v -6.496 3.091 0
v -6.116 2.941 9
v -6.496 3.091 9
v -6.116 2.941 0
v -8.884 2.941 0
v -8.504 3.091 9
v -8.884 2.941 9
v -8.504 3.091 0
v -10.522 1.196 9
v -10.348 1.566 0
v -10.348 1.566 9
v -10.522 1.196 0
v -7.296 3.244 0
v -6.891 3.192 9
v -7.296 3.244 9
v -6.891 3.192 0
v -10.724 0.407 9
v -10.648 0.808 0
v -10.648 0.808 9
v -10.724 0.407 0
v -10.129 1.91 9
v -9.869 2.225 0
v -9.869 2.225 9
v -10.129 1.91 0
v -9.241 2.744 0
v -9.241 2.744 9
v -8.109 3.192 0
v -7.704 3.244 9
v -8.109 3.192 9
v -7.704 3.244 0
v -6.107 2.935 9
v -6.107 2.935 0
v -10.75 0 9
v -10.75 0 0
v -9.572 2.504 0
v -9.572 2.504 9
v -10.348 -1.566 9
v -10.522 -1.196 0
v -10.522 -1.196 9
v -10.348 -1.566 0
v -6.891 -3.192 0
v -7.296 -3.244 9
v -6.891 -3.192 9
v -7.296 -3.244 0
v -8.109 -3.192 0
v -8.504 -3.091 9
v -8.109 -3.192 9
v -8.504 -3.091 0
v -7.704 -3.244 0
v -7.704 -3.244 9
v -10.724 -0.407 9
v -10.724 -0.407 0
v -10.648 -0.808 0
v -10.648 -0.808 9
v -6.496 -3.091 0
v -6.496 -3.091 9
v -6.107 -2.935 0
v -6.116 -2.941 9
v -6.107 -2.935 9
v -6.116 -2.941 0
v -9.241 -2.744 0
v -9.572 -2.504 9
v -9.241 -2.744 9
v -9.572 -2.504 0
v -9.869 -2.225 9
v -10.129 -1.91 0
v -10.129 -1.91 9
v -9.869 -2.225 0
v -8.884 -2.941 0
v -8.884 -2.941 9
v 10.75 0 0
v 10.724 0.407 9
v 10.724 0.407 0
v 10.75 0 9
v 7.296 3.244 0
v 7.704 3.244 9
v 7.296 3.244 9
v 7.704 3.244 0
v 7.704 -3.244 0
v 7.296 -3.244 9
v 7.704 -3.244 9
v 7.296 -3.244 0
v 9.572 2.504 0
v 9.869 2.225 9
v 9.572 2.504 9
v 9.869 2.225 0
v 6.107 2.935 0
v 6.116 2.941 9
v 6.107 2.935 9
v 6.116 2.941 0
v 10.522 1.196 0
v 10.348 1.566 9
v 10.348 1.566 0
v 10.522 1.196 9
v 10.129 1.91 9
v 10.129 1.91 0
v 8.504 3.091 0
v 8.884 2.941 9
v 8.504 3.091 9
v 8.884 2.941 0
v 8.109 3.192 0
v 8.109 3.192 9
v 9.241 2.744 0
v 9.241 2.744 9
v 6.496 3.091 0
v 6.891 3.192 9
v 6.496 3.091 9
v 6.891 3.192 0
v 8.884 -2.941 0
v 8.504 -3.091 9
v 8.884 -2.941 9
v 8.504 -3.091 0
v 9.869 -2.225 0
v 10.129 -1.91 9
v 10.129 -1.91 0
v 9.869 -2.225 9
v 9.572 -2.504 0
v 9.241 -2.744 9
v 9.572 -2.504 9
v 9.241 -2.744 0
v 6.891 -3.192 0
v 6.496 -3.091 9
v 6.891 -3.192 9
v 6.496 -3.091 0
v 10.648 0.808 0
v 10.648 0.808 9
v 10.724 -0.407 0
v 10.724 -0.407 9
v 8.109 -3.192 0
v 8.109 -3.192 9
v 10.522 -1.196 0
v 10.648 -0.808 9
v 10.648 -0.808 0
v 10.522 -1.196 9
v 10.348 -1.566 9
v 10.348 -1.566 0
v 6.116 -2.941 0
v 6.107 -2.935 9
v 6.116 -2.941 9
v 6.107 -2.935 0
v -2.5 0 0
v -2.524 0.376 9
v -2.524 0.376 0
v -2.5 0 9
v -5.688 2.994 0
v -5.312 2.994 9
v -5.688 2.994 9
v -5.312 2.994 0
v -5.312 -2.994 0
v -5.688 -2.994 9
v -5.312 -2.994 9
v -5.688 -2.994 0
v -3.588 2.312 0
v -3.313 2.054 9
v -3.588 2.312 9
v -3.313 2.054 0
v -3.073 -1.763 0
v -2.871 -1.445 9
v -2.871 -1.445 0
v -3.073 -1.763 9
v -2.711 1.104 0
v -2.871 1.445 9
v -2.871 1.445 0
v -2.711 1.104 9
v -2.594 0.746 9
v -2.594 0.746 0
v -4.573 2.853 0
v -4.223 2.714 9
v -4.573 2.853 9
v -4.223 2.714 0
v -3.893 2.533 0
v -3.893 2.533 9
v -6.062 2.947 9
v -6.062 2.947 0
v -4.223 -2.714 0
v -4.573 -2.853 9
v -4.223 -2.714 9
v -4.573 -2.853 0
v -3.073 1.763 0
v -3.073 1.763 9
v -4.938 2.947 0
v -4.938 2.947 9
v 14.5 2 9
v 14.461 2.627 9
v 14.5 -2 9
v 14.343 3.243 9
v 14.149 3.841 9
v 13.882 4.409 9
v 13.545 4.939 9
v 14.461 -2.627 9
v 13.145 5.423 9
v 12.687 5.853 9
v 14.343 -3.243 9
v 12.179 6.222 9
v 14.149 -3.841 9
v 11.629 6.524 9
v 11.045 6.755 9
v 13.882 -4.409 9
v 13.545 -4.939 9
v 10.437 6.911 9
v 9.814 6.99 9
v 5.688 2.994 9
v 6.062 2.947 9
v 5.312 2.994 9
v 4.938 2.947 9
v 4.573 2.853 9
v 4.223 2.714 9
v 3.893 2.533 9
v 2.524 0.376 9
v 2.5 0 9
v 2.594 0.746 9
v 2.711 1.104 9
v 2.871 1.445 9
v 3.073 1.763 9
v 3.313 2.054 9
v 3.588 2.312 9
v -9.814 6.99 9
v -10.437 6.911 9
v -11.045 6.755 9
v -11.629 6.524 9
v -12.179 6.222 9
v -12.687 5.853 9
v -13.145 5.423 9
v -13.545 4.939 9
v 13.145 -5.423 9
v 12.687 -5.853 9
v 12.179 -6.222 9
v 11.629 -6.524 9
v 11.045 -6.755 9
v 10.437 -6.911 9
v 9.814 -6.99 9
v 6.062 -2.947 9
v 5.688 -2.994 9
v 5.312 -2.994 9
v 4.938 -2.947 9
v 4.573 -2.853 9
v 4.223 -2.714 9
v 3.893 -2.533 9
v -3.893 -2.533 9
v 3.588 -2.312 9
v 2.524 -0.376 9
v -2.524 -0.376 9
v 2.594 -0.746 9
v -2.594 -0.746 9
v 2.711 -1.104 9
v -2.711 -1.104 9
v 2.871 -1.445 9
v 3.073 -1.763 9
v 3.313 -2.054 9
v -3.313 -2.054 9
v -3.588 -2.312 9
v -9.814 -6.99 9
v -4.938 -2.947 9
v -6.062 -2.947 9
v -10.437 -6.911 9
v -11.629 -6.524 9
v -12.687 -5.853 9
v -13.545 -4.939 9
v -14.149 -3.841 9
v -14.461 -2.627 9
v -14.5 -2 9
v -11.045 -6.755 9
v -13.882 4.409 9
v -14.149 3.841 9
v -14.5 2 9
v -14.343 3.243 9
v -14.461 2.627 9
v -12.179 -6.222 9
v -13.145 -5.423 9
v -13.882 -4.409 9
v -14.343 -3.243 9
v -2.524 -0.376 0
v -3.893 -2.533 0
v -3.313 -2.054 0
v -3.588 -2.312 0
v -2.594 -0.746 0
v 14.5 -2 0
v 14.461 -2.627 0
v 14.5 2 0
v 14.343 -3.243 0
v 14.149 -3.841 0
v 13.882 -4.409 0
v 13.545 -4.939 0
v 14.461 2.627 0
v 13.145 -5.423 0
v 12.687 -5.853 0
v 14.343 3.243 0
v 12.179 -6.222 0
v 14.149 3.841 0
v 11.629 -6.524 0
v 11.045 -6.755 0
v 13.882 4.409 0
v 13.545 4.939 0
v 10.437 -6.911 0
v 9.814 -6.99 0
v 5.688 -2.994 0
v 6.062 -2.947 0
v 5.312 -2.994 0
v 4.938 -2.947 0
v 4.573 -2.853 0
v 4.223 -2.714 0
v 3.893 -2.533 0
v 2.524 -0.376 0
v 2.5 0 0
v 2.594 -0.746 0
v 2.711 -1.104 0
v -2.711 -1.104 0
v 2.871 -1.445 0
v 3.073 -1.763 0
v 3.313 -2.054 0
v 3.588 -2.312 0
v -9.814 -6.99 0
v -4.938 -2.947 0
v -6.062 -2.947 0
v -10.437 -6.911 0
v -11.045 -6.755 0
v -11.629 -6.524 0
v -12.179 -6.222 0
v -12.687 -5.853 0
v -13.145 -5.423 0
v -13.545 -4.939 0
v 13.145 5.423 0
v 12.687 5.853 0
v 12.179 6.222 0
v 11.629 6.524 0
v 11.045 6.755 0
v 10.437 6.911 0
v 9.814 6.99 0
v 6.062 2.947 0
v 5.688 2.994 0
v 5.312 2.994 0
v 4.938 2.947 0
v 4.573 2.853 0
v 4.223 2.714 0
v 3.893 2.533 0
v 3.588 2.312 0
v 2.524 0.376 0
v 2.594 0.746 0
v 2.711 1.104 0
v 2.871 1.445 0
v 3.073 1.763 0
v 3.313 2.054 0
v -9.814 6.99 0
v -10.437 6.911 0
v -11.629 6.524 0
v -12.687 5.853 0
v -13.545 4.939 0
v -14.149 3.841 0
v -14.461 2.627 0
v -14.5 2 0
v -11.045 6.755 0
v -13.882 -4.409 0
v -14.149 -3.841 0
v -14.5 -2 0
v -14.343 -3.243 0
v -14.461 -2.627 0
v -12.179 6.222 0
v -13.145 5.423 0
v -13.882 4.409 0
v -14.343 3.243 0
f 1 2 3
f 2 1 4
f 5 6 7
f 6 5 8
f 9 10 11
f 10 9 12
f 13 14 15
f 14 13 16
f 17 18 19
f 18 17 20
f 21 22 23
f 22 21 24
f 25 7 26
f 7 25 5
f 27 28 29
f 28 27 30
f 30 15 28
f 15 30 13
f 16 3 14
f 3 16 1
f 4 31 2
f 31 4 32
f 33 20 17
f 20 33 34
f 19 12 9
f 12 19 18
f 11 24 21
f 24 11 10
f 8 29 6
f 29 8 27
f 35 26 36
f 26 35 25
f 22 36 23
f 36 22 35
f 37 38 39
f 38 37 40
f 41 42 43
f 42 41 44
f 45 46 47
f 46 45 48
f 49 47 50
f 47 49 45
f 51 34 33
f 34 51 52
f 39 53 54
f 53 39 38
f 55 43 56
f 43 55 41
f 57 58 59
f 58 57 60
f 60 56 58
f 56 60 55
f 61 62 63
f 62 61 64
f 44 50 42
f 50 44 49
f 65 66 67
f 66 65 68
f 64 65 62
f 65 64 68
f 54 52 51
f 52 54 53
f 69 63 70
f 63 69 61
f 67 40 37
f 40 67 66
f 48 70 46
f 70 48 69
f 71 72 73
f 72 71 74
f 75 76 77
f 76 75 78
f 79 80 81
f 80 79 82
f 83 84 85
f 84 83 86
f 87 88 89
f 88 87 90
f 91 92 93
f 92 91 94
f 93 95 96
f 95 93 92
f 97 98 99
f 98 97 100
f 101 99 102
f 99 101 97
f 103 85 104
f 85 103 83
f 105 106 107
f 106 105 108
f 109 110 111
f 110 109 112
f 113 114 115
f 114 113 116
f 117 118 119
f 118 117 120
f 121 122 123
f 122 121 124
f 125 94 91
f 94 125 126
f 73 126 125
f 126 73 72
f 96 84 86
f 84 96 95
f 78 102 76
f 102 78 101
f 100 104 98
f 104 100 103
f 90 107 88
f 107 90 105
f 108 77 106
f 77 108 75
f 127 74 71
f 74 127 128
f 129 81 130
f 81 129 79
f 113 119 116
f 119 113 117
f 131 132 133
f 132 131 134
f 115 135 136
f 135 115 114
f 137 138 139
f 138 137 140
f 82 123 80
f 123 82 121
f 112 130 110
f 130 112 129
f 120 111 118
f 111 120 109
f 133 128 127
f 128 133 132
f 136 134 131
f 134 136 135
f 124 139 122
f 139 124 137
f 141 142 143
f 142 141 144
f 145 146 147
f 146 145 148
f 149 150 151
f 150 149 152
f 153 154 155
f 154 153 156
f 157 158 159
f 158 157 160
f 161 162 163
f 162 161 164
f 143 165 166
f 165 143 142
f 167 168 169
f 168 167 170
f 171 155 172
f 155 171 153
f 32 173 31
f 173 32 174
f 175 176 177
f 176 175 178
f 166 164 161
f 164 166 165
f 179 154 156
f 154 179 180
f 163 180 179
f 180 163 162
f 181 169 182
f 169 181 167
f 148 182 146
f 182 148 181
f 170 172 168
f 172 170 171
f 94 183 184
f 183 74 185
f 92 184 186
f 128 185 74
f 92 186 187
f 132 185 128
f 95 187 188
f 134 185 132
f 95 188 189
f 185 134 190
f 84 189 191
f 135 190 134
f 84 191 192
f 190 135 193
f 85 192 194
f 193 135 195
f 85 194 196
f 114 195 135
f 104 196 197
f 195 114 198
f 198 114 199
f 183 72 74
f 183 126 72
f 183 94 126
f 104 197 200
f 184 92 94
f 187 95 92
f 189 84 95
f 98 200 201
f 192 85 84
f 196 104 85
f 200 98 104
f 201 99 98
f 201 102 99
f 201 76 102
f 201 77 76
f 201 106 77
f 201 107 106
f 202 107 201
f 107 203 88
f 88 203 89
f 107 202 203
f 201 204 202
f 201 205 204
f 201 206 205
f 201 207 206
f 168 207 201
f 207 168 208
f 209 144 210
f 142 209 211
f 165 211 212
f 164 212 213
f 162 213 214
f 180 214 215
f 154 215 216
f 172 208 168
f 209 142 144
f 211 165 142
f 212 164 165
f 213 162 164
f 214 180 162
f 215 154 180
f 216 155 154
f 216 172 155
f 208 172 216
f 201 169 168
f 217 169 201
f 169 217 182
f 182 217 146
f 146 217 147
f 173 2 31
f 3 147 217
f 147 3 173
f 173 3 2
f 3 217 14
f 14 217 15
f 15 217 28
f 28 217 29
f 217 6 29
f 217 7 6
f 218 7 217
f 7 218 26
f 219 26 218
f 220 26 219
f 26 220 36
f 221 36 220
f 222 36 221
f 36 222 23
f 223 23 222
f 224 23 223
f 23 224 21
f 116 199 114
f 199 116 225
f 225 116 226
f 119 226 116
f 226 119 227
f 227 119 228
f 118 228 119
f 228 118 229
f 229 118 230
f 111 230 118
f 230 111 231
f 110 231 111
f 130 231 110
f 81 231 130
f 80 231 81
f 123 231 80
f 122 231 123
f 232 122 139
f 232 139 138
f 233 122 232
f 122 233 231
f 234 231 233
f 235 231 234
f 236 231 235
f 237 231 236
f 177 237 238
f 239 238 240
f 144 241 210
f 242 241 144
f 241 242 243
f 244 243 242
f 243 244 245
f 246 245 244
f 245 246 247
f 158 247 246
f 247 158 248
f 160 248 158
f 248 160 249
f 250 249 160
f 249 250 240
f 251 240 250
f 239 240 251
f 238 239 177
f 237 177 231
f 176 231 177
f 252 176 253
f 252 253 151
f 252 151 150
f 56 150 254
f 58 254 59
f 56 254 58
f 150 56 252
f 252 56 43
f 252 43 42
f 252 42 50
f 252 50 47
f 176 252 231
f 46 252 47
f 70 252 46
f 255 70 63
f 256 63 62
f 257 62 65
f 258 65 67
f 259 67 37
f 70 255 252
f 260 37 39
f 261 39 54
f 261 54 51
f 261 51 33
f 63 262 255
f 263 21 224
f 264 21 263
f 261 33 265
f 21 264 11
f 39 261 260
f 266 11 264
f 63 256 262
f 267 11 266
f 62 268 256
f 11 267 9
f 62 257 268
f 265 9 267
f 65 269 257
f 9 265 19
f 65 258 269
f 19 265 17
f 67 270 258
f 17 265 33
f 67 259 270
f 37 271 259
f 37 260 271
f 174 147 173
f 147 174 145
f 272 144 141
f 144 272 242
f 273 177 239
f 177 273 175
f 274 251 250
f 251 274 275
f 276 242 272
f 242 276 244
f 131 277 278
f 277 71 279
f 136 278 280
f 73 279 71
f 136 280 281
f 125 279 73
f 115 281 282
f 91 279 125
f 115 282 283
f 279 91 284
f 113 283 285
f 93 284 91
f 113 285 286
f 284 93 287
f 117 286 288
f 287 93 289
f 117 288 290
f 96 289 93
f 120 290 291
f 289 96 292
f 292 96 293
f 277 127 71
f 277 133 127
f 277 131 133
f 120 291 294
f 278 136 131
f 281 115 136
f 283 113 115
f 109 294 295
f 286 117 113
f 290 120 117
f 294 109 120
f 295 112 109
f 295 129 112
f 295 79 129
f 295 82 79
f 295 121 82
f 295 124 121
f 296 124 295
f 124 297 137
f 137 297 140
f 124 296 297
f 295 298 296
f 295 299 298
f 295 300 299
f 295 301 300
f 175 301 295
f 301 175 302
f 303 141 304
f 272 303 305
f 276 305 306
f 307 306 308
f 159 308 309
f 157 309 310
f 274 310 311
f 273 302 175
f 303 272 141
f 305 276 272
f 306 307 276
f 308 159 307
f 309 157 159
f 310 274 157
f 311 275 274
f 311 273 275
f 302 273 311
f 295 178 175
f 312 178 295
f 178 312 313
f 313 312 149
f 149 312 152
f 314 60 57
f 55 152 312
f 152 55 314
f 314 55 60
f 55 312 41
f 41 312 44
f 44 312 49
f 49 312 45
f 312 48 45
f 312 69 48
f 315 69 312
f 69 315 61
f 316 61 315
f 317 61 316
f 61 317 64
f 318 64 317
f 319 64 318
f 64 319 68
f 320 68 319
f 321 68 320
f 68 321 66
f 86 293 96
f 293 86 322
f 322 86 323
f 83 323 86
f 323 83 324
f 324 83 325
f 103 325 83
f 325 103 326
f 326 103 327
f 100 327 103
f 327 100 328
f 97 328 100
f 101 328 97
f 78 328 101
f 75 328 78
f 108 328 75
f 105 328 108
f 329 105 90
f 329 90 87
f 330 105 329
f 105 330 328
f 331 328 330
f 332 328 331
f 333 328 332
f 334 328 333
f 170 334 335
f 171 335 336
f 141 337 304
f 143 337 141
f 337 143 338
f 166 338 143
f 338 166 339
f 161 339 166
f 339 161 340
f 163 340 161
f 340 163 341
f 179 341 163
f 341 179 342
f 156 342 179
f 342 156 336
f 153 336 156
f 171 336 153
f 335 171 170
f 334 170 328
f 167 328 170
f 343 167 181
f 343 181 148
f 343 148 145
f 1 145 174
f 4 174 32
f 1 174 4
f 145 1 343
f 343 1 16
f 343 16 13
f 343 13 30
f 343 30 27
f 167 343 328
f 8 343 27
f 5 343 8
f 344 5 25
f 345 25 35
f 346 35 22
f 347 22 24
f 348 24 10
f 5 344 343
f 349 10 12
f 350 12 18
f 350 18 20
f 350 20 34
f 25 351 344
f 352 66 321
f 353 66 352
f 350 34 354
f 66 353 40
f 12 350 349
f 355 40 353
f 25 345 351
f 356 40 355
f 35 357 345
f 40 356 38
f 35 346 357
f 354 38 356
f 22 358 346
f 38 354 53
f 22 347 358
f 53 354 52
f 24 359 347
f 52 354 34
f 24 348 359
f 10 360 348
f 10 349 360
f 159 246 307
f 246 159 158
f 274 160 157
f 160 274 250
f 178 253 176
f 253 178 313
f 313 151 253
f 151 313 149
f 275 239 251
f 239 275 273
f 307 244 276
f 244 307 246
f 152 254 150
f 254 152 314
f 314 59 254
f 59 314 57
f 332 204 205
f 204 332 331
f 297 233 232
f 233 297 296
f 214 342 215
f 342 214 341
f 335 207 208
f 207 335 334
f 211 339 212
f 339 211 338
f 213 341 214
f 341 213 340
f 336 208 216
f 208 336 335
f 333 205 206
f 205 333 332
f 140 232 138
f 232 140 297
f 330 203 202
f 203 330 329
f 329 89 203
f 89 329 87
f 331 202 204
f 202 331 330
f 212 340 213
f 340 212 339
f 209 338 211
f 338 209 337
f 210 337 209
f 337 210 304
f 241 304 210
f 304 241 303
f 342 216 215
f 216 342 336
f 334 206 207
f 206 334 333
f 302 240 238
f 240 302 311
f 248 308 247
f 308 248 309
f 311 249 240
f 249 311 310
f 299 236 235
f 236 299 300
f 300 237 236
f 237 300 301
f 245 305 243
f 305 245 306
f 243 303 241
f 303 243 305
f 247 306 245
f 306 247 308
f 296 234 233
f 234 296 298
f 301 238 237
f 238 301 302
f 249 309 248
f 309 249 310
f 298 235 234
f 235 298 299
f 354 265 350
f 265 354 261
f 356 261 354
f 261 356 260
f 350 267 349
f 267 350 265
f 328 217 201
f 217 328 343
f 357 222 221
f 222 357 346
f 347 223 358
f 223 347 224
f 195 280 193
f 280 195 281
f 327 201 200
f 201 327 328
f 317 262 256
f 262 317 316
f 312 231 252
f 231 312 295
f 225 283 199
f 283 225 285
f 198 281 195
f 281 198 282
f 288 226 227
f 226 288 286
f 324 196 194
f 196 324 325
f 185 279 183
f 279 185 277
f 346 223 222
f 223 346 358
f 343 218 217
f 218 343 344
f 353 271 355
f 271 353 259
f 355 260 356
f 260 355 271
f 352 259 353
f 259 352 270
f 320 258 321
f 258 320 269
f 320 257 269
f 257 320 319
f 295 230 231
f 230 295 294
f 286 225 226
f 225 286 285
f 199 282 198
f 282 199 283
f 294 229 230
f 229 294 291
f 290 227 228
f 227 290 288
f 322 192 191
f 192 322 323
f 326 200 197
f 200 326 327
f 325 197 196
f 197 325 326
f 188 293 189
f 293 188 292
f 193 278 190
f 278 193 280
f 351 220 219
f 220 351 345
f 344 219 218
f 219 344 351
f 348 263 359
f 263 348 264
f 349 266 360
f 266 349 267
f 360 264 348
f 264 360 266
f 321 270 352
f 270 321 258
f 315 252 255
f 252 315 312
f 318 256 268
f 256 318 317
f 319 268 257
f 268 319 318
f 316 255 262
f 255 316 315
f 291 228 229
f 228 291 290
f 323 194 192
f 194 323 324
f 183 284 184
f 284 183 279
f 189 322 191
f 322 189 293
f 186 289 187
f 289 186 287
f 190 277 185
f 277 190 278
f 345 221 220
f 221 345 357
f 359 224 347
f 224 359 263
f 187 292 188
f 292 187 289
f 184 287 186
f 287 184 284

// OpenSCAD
$fn = 50;


difference() {
	union() {
		hull() {
			translate(v = [-9.5000000000, 2.0000000000, 0]) {
				cylinder(h = 9, r = 5);
			}
			translate(v = [9.5000000000, 2.0000000000, 0]) {
				cylinder(h = 9, r = 5);
			}
			translate(v = [-9.5000000000, -2.0000000000, 0]) {
				cylinder(h = 9, r = 5);
			}
			translate(v = [9.5000000000, -2.0000000000, 0]) {
				cylinder(h = 9, r = 5);
			}
		}
	}
	union() {
		#translate(v = [-7.5000000000, 0.0000000000, -100.0000000000]) {
			cylinder(h = 200, r = 3.2500000000);
		}
		#translate(v = [-7.5000000000, 0.0000000000, -100.0000000000]) {
			cylinder(h = 200, r = 3.2500000000);
		}
		#translate(v = [7.5000000000, 0.0000000000, -100.0000000000]) {
			cylinder(h = 200, r = 3.2500000000);
		}
		#translate(v = [7.5000000000, 0.0000000000, -100.0000000000]) {
			cylinder(h = 200, r = 3.2500000000);
		}
		#translate(v = [-5.5000000000, 0, 0]) {
			cylinder(h = 9, r = 3.0000000000);
		}
		#translate(v = [5.5000000000, 0, 0]) {
			cylinder(h = 9, r = 3.0000000000);
		}
	}
}
